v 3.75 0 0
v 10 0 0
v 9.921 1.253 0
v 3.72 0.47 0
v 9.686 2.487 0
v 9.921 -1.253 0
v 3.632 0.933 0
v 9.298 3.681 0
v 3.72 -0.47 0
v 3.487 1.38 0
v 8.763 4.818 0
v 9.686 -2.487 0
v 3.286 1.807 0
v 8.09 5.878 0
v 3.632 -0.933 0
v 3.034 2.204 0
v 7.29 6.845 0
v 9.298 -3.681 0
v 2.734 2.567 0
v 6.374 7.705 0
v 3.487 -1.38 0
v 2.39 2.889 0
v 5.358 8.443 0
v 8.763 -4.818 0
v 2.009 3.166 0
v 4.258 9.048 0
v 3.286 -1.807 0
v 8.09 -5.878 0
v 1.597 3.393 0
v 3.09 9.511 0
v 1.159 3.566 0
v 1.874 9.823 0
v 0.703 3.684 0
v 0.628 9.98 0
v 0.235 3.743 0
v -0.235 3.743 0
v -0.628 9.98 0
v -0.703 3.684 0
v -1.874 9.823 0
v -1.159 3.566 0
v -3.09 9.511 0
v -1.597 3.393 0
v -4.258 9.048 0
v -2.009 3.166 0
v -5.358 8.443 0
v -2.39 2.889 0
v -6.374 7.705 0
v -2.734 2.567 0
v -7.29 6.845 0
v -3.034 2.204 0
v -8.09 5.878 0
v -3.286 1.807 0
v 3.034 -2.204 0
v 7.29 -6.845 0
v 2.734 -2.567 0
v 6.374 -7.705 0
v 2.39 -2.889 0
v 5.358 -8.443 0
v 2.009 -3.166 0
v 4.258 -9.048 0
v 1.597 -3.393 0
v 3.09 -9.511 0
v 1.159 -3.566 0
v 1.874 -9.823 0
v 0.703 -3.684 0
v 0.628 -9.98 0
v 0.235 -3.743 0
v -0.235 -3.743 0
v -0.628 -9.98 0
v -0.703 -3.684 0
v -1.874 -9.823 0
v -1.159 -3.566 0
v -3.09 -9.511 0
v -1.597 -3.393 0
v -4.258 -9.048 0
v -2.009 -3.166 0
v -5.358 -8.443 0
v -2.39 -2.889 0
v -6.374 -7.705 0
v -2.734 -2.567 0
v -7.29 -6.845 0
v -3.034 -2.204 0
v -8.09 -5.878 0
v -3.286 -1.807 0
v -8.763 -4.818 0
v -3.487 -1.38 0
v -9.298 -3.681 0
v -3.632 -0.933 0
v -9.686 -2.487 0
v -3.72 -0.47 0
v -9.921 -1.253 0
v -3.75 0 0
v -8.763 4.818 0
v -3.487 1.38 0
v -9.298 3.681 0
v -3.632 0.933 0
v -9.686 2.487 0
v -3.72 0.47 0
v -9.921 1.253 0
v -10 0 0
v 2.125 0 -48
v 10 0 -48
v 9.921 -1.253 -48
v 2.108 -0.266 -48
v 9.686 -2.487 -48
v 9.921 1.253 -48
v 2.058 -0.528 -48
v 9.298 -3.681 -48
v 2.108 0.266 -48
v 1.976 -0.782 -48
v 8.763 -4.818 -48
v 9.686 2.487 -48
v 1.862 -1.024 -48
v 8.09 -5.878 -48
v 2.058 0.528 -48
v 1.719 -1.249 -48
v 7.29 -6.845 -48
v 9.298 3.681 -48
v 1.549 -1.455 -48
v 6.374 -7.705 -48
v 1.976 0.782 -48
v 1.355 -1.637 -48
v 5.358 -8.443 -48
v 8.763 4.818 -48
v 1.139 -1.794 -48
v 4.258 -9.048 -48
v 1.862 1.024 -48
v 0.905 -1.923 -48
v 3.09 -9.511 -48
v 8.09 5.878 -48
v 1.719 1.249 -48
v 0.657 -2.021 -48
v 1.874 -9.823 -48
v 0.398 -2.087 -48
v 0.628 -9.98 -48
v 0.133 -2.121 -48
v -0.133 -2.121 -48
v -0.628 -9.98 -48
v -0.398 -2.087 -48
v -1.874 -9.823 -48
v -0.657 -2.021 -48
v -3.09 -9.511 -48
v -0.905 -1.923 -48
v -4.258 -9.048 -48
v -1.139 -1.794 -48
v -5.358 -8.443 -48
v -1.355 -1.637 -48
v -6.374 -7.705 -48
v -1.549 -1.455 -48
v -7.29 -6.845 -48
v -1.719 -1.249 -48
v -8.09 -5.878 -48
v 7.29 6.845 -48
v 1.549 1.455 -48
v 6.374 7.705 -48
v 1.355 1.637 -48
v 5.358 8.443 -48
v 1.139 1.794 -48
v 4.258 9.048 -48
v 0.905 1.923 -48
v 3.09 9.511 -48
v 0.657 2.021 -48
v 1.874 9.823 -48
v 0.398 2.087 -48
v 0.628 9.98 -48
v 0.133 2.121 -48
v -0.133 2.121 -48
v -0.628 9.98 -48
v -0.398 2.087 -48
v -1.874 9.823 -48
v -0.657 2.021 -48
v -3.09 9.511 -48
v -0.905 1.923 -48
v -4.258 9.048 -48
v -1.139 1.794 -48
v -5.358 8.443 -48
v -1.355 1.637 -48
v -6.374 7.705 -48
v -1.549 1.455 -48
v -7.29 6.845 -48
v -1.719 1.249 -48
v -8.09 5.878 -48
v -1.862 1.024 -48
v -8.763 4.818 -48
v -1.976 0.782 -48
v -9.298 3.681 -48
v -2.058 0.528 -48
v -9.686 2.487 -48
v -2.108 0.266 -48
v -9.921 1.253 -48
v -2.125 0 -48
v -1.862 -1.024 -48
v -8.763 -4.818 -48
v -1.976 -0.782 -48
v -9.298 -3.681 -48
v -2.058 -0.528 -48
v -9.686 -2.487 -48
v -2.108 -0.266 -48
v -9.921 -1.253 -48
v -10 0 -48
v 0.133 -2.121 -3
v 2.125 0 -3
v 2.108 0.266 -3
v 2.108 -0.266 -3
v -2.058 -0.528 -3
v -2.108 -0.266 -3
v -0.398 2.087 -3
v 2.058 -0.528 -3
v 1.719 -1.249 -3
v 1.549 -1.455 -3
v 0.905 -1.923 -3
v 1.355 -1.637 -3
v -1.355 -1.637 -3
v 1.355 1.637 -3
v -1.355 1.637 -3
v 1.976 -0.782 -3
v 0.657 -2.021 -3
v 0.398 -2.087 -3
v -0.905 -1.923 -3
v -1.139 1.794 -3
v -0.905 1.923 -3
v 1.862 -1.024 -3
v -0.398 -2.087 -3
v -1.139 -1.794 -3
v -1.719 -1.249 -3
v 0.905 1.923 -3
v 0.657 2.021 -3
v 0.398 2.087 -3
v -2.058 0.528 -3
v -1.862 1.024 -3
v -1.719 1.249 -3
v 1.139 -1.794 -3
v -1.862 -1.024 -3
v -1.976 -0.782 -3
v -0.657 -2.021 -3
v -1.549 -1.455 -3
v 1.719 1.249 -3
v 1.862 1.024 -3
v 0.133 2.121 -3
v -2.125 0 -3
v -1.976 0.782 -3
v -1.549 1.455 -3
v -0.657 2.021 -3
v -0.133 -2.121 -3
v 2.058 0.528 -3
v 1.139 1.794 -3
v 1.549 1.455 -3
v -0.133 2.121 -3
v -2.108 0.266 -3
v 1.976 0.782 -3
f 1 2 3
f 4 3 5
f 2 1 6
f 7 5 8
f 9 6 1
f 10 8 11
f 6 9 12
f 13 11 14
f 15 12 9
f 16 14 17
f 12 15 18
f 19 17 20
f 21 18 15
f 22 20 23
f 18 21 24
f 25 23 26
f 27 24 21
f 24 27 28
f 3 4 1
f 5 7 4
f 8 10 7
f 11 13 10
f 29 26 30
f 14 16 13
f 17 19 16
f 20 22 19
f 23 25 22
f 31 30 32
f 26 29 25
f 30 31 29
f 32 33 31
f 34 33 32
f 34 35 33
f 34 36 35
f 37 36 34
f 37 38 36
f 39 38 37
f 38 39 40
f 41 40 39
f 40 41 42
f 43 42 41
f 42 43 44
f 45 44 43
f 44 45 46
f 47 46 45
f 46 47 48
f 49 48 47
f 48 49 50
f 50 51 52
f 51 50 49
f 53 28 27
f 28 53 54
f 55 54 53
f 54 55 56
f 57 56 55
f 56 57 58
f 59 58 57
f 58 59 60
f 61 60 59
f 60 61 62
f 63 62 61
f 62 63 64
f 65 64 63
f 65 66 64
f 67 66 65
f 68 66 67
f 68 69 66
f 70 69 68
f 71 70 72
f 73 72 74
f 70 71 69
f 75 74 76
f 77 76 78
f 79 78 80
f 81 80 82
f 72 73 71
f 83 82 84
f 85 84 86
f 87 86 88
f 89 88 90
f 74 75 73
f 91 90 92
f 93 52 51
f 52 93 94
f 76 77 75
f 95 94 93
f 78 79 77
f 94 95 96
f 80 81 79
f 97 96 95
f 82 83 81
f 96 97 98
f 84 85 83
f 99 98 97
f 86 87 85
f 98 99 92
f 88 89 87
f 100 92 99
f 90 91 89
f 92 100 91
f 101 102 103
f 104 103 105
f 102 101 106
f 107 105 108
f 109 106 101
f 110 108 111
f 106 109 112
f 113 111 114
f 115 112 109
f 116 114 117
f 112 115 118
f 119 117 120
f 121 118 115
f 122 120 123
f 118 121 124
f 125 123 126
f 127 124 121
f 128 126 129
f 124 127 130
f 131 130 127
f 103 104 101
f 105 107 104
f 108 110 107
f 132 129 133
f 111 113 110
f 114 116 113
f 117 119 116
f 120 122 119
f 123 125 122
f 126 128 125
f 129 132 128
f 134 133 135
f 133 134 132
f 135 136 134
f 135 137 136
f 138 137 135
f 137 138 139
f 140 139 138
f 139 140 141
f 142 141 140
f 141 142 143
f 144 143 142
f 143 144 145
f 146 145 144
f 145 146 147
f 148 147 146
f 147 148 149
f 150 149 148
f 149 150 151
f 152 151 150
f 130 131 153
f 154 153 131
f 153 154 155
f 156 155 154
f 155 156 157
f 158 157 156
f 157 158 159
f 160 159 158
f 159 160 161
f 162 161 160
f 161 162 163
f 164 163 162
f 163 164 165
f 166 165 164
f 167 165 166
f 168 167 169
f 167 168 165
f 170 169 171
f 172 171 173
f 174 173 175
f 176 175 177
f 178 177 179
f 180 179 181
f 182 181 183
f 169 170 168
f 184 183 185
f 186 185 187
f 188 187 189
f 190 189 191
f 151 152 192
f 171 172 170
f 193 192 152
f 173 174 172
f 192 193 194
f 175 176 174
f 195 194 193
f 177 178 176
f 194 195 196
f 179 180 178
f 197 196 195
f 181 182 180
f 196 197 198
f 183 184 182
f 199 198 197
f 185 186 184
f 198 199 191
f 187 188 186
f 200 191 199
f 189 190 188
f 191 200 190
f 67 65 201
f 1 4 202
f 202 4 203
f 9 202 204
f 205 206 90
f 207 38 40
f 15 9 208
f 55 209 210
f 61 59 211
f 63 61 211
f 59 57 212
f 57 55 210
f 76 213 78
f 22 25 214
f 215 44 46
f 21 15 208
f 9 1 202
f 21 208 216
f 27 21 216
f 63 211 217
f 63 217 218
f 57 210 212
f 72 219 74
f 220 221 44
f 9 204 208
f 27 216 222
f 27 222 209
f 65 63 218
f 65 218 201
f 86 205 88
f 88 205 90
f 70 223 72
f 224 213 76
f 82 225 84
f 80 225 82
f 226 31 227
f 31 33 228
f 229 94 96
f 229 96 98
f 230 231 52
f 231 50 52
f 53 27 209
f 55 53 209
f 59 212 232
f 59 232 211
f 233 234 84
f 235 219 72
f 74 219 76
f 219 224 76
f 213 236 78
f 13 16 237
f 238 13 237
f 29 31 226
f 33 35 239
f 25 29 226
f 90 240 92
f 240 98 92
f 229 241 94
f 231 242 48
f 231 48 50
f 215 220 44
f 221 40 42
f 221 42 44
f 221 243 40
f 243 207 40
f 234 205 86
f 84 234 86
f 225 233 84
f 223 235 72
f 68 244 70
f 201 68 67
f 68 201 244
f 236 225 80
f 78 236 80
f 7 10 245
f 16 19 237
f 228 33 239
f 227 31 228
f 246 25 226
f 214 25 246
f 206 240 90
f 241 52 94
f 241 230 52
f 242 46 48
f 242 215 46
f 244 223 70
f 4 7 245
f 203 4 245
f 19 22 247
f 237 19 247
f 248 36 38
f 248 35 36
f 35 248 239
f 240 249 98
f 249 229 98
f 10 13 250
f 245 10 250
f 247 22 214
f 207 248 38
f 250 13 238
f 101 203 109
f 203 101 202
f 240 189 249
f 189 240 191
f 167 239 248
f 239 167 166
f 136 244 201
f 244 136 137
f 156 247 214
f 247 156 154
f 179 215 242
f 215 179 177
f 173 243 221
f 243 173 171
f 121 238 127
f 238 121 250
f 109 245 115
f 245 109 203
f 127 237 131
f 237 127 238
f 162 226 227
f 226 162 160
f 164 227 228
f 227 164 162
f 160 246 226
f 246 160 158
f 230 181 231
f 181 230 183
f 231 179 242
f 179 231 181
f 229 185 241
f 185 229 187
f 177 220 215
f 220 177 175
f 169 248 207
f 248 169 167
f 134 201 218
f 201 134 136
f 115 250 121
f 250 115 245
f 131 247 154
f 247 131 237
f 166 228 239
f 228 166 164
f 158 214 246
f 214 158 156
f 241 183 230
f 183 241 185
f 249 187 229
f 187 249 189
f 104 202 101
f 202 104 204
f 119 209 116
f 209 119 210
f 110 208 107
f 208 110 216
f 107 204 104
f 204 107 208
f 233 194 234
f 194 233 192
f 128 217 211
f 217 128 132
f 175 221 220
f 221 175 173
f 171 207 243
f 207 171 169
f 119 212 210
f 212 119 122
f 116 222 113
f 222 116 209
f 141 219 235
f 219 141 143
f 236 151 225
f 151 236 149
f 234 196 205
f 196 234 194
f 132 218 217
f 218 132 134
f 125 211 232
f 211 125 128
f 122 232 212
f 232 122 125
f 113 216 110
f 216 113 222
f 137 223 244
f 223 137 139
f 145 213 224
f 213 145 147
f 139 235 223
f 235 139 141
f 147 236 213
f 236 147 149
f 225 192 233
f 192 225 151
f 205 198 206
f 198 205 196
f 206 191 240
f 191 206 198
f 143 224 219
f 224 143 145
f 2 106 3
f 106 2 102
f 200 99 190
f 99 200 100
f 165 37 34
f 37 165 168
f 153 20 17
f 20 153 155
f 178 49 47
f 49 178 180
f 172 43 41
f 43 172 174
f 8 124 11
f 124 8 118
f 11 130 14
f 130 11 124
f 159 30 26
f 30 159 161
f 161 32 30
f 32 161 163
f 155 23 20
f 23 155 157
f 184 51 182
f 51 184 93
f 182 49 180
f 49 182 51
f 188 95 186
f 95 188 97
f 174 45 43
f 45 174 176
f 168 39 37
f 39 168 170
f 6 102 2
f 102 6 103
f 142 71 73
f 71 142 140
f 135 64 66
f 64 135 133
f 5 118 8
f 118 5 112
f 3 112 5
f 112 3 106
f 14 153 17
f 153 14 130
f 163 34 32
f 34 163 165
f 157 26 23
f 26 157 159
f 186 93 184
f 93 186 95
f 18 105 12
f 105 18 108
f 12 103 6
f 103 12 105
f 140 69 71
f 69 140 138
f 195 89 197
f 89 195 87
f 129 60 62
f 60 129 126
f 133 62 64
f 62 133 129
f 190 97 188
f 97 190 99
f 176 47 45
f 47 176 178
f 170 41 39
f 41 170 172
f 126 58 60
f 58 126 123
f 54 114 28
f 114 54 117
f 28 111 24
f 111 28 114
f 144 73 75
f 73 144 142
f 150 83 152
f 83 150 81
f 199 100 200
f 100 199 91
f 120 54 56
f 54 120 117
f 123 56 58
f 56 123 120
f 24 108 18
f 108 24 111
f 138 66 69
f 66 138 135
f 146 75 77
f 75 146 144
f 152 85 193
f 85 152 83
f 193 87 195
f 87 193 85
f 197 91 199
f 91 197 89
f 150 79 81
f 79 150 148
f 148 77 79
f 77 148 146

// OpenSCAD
$fn = 50;


difference() {
	union() {
		translate(v = [0, 0, -48.0000000000]) {
			cylinder(h = 48, r = 10.0000000000);
		}
	}
	union() {
		translate(v = [0, 0, 0]) {
			rotate(a = [0, 0, 0]) {
				difference() {
					union() {
						#translate(v = [0, 0, -48.0000000000]) {
							cylinder(h = 48, r = 2.0000000000);
						}
						#translate(v = [0, 0, -3]) {
							cylinder(h = 3, r1 = 2.1250000000, r2 = 3.7500000000);
						}
						#translate(v = [0, 0, -48.0000000000]) {
							cylinder(h = 48, r = 2.1250000000);
						}
						#translate(v = [0, 0, -48.0000000000]) {
							cylinder(h = 48, r = 2.0000000000);
						}
					}
					union();
				}
			}
		}
	}
}
